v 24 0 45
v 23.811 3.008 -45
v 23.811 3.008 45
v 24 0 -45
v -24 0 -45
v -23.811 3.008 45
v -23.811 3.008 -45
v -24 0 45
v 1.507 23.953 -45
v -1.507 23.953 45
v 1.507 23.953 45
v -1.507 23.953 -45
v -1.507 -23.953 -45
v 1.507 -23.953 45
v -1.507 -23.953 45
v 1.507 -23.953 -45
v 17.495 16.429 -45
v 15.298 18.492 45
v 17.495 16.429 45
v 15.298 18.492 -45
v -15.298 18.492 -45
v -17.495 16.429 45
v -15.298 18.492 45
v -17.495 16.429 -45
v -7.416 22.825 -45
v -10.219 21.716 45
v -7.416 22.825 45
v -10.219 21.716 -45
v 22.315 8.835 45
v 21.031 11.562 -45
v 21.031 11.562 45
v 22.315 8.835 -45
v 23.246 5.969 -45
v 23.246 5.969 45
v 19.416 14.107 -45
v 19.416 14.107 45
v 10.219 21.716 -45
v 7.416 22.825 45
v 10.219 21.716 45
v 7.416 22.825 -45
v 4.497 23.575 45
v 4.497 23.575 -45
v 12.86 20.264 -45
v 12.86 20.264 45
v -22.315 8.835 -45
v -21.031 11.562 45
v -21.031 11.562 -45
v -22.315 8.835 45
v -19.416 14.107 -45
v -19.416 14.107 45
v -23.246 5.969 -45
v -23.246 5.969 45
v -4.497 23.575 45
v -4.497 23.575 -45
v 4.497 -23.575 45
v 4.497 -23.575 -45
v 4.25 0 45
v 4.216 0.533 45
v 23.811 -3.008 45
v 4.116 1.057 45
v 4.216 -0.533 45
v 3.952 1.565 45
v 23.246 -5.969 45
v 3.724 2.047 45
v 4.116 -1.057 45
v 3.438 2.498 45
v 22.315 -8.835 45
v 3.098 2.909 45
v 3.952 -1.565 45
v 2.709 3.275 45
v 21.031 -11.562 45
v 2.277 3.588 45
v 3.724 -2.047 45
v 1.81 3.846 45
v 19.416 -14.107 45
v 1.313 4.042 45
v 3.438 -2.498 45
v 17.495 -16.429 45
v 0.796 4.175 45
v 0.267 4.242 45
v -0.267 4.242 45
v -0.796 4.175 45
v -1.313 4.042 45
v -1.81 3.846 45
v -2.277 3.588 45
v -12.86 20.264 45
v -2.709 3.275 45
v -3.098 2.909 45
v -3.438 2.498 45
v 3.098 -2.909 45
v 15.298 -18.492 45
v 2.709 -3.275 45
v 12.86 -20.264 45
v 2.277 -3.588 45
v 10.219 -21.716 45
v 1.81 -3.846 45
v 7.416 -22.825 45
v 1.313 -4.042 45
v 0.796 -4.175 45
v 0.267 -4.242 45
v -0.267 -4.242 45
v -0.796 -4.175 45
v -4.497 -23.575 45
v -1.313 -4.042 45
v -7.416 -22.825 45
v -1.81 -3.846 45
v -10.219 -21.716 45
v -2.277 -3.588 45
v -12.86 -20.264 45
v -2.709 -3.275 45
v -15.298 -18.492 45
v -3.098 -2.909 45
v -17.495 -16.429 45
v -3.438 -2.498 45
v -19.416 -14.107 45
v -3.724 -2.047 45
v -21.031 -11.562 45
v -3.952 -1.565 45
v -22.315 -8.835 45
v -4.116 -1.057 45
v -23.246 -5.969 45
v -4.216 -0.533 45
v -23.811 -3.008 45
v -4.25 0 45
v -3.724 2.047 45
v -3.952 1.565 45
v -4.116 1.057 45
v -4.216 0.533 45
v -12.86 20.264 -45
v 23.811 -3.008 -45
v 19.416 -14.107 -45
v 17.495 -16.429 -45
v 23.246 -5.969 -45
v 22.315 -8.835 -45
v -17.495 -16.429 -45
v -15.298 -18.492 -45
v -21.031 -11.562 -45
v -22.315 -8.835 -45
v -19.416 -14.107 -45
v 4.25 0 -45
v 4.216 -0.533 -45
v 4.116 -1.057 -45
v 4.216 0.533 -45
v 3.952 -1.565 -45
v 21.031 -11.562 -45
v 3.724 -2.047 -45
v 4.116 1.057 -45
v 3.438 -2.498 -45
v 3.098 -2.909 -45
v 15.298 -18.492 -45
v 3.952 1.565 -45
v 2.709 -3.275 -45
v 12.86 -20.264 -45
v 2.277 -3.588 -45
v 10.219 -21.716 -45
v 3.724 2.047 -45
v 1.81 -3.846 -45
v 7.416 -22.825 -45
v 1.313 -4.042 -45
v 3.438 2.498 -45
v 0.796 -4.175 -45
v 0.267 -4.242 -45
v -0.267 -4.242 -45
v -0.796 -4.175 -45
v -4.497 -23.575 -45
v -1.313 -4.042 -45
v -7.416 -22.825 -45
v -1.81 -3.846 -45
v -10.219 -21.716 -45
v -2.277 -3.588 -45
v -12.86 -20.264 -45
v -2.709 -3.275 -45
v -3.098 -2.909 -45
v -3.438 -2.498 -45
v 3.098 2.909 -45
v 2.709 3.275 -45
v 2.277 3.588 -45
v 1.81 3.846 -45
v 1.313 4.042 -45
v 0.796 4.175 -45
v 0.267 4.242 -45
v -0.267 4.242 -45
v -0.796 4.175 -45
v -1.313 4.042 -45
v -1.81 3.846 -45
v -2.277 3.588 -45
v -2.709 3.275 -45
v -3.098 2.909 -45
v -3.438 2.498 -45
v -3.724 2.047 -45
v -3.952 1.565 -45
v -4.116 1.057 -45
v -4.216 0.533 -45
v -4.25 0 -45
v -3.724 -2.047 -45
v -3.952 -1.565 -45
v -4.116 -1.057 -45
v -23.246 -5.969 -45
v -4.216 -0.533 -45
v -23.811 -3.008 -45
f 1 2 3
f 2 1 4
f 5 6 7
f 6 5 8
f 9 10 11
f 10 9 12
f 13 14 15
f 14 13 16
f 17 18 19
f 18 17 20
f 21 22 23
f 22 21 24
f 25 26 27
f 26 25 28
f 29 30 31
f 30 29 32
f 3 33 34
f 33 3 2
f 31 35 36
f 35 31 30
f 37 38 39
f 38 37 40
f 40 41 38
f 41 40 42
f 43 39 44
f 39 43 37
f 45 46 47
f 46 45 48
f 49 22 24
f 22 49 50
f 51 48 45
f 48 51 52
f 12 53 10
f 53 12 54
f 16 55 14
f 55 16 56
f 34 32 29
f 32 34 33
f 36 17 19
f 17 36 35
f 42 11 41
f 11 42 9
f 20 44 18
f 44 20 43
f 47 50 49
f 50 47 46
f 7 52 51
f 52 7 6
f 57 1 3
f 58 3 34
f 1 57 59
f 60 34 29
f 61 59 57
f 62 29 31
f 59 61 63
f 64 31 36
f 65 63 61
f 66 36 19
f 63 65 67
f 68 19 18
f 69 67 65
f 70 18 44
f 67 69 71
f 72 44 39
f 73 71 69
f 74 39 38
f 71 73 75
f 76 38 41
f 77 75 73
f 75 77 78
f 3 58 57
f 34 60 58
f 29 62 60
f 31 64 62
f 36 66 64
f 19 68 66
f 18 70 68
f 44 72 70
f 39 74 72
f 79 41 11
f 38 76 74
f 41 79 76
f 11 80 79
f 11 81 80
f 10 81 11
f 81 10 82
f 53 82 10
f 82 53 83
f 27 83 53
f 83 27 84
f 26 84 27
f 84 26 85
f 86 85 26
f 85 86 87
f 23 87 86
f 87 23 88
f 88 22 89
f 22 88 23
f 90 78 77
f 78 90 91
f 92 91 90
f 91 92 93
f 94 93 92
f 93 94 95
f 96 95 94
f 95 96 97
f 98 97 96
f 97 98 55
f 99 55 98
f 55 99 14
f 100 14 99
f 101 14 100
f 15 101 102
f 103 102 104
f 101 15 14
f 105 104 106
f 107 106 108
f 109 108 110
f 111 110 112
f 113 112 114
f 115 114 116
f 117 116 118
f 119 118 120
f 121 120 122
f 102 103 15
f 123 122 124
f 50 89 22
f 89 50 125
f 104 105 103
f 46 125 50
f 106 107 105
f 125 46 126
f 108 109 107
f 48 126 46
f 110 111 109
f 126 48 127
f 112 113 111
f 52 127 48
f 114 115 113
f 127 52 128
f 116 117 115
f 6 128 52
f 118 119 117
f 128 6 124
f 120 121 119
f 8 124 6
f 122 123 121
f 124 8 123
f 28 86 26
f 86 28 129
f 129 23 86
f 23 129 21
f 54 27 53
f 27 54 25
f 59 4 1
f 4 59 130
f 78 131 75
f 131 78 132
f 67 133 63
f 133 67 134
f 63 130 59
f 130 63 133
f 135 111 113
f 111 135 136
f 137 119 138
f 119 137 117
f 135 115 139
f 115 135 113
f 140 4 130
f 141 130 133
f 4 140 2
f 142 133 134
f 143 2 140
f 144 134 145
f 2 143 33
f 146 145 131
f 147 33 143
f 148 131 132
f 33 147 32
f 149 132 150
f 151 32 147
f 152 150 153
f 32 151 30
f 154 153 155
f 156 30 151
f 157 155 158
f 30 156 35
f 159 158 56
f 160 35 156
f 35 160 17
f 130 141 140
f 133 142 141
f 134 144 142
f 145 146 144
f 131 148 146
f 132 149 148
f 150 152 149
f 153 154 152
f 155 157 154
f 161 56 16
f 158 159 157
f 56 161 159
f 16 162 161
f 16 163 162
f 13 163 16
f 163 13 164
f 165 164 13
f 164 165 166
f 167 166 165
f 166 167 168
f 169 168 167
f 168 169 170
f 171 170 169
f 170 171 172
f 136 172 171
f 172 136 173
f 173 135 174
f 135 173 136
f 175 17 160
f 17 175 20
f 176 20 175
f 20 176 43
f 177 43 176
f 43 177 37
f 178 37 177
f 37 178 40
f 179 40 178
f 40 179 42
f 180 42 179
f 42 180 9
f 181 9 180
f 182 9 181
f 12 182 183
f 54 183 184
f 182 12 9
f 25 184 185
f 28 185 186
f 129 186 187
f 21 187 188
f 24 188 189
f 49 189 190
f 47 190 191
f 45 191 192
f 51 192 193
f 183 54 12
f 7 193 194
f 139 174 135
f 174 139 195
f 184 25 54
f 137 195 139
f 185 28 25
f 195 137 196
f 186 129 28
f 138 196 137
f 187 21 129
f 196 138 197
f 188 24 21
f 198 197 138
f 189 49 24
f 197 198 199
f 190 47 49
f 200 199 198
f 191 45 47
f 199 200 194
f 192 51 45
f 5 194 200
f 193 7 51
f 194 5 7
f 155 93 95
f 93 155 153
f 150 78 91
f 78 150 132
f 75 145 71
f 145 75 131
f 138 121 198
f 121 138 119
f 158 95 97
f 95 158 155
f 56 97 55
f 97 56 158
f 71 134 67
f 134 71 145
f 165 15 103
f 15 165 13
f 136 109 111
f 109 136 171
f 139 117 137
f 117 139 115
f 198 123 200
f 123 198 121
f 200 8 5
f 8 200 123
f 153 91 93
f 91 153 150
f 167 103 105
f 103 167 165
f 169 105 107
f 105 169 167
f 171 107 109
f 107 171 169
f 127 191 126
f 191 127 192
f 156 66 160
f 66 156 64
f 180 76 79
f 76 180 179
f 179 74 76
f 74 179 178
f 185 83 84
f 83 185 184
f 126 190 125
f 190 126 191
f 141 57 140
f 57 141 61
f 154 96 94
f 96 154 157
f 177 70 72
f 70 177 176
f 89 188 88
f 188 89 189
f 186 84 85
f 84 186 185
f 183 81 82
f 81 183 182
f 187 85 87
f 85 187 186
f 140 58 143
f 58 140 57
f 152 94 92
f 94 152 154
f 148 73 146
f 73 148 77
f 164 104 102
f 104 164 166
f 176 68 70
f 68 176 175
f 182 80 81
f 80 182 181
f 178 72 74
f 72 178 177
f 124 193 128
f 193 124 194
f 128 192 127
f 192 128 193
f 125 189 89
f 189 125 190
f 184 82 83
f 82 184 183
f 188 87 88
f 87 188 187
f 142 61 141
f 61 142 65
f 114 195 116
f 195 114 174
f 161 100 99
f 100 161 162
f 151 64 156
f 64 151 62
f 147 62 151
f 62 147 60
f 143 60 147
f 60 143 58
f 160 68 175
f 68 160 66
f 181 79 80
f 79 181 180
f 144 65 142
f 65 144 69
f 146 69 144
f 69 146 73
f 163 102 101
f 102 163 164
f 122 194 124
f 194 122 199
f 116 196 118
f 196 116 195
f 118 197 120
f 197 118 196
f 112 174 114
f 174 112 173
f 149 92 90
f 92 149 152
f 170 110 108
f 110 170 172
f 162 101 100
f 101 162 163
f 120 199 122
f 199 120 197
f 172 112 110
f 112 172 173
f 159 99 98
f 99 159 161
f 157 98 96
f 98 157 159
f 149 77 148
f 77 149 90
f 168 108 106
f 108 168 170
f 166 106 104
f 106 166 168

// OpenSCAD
$fn = 50;


difference() {
	union() {
		translate(v = [0, 0, -45.0000000000]) {
			cylinder(h = 90, r = 24.0000000000);
		}
	}
	union() {
		translate(v = [0, 0, -100.0000000000]) {
			cylinder(h = 200, r = 4.2500000000);
		}
	}
}
